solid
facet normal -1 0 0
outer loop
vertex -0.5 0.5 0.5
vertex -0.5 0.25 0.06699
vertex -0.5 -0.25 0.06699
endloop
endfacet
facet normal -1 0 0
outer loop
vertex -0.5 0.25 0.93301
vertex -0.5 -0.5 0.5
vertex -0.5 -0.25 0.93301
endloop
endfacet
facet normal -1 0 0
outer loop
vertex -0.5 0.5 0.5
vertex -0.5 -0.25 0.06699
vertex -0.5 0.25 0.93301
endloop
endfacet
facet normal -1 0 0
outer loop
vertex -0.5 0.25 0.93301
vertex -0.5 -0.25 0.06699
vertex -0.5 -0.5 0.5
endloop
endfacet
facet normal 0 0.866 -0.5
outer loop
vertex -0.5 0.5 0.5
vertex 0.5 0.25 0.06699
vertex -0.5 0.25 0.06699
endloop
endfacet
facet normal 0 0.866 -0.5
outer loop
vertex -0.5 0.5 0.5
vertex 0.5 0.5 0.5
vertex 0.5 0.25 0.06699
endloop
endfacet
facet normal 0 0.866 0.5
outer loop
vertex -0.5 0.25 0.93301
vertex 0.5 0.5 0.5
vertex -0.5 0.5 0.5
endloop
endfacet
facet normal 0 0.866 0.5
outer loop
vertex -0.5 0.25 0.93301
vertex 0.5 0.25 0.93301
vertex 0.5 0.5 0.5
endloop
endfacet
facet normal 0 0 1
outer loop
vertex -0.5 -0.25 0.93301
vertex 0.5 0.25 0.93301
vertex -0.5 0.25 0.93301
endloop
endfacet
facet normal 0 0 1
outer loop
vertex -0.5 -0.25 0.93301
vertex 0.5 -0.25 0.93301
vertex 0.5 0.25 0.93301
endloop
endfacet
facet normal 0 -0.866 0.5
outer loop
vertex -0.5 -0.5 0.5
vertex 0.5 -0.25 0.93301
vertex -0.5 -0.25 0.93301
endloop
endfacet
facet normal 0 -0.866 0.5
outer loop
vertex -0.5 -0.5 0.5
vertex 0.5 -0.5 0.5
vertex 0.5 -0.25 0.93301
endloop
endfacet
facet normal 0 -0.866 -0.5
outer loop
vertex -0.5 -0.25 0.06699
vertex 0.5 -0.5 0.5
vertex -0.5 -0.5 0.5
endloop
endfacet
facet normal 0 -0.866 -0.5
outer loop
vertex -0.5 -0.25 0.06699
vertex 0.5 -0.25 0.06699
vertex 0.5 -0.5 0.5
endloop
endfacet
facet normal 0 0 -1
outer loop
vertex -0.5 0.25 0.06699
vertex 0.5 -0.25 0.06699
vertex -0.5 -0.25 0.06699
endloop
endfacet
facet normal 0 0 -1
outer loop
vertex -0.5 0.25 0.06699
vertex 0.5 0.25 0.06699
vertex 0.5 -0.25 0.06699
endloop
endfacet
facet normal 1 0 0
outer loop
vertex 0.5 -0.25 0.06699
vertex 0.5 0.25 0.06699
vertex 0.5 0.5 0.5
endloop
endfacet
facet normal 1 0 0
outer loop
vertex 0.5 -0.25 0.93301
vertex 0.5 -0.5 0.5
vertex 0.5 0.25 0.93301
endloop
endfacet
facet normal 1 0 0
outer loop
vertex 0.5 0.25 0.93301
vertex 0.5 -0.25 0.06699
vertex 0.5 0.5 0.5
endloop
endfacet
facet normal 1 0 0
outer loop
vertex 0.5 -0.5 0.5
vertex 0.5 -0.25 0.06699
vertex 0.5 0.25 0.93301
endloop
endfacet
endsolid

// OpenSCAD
//Hexagonal Prism for Basic Shapes
//by Slashee the Cow

translate([-0.5,0,0.5])
rotate([30,0,0])
rotate([0,90,0])
linear_extrude(1, false)
circle(d  = 1, $fn = 6);
